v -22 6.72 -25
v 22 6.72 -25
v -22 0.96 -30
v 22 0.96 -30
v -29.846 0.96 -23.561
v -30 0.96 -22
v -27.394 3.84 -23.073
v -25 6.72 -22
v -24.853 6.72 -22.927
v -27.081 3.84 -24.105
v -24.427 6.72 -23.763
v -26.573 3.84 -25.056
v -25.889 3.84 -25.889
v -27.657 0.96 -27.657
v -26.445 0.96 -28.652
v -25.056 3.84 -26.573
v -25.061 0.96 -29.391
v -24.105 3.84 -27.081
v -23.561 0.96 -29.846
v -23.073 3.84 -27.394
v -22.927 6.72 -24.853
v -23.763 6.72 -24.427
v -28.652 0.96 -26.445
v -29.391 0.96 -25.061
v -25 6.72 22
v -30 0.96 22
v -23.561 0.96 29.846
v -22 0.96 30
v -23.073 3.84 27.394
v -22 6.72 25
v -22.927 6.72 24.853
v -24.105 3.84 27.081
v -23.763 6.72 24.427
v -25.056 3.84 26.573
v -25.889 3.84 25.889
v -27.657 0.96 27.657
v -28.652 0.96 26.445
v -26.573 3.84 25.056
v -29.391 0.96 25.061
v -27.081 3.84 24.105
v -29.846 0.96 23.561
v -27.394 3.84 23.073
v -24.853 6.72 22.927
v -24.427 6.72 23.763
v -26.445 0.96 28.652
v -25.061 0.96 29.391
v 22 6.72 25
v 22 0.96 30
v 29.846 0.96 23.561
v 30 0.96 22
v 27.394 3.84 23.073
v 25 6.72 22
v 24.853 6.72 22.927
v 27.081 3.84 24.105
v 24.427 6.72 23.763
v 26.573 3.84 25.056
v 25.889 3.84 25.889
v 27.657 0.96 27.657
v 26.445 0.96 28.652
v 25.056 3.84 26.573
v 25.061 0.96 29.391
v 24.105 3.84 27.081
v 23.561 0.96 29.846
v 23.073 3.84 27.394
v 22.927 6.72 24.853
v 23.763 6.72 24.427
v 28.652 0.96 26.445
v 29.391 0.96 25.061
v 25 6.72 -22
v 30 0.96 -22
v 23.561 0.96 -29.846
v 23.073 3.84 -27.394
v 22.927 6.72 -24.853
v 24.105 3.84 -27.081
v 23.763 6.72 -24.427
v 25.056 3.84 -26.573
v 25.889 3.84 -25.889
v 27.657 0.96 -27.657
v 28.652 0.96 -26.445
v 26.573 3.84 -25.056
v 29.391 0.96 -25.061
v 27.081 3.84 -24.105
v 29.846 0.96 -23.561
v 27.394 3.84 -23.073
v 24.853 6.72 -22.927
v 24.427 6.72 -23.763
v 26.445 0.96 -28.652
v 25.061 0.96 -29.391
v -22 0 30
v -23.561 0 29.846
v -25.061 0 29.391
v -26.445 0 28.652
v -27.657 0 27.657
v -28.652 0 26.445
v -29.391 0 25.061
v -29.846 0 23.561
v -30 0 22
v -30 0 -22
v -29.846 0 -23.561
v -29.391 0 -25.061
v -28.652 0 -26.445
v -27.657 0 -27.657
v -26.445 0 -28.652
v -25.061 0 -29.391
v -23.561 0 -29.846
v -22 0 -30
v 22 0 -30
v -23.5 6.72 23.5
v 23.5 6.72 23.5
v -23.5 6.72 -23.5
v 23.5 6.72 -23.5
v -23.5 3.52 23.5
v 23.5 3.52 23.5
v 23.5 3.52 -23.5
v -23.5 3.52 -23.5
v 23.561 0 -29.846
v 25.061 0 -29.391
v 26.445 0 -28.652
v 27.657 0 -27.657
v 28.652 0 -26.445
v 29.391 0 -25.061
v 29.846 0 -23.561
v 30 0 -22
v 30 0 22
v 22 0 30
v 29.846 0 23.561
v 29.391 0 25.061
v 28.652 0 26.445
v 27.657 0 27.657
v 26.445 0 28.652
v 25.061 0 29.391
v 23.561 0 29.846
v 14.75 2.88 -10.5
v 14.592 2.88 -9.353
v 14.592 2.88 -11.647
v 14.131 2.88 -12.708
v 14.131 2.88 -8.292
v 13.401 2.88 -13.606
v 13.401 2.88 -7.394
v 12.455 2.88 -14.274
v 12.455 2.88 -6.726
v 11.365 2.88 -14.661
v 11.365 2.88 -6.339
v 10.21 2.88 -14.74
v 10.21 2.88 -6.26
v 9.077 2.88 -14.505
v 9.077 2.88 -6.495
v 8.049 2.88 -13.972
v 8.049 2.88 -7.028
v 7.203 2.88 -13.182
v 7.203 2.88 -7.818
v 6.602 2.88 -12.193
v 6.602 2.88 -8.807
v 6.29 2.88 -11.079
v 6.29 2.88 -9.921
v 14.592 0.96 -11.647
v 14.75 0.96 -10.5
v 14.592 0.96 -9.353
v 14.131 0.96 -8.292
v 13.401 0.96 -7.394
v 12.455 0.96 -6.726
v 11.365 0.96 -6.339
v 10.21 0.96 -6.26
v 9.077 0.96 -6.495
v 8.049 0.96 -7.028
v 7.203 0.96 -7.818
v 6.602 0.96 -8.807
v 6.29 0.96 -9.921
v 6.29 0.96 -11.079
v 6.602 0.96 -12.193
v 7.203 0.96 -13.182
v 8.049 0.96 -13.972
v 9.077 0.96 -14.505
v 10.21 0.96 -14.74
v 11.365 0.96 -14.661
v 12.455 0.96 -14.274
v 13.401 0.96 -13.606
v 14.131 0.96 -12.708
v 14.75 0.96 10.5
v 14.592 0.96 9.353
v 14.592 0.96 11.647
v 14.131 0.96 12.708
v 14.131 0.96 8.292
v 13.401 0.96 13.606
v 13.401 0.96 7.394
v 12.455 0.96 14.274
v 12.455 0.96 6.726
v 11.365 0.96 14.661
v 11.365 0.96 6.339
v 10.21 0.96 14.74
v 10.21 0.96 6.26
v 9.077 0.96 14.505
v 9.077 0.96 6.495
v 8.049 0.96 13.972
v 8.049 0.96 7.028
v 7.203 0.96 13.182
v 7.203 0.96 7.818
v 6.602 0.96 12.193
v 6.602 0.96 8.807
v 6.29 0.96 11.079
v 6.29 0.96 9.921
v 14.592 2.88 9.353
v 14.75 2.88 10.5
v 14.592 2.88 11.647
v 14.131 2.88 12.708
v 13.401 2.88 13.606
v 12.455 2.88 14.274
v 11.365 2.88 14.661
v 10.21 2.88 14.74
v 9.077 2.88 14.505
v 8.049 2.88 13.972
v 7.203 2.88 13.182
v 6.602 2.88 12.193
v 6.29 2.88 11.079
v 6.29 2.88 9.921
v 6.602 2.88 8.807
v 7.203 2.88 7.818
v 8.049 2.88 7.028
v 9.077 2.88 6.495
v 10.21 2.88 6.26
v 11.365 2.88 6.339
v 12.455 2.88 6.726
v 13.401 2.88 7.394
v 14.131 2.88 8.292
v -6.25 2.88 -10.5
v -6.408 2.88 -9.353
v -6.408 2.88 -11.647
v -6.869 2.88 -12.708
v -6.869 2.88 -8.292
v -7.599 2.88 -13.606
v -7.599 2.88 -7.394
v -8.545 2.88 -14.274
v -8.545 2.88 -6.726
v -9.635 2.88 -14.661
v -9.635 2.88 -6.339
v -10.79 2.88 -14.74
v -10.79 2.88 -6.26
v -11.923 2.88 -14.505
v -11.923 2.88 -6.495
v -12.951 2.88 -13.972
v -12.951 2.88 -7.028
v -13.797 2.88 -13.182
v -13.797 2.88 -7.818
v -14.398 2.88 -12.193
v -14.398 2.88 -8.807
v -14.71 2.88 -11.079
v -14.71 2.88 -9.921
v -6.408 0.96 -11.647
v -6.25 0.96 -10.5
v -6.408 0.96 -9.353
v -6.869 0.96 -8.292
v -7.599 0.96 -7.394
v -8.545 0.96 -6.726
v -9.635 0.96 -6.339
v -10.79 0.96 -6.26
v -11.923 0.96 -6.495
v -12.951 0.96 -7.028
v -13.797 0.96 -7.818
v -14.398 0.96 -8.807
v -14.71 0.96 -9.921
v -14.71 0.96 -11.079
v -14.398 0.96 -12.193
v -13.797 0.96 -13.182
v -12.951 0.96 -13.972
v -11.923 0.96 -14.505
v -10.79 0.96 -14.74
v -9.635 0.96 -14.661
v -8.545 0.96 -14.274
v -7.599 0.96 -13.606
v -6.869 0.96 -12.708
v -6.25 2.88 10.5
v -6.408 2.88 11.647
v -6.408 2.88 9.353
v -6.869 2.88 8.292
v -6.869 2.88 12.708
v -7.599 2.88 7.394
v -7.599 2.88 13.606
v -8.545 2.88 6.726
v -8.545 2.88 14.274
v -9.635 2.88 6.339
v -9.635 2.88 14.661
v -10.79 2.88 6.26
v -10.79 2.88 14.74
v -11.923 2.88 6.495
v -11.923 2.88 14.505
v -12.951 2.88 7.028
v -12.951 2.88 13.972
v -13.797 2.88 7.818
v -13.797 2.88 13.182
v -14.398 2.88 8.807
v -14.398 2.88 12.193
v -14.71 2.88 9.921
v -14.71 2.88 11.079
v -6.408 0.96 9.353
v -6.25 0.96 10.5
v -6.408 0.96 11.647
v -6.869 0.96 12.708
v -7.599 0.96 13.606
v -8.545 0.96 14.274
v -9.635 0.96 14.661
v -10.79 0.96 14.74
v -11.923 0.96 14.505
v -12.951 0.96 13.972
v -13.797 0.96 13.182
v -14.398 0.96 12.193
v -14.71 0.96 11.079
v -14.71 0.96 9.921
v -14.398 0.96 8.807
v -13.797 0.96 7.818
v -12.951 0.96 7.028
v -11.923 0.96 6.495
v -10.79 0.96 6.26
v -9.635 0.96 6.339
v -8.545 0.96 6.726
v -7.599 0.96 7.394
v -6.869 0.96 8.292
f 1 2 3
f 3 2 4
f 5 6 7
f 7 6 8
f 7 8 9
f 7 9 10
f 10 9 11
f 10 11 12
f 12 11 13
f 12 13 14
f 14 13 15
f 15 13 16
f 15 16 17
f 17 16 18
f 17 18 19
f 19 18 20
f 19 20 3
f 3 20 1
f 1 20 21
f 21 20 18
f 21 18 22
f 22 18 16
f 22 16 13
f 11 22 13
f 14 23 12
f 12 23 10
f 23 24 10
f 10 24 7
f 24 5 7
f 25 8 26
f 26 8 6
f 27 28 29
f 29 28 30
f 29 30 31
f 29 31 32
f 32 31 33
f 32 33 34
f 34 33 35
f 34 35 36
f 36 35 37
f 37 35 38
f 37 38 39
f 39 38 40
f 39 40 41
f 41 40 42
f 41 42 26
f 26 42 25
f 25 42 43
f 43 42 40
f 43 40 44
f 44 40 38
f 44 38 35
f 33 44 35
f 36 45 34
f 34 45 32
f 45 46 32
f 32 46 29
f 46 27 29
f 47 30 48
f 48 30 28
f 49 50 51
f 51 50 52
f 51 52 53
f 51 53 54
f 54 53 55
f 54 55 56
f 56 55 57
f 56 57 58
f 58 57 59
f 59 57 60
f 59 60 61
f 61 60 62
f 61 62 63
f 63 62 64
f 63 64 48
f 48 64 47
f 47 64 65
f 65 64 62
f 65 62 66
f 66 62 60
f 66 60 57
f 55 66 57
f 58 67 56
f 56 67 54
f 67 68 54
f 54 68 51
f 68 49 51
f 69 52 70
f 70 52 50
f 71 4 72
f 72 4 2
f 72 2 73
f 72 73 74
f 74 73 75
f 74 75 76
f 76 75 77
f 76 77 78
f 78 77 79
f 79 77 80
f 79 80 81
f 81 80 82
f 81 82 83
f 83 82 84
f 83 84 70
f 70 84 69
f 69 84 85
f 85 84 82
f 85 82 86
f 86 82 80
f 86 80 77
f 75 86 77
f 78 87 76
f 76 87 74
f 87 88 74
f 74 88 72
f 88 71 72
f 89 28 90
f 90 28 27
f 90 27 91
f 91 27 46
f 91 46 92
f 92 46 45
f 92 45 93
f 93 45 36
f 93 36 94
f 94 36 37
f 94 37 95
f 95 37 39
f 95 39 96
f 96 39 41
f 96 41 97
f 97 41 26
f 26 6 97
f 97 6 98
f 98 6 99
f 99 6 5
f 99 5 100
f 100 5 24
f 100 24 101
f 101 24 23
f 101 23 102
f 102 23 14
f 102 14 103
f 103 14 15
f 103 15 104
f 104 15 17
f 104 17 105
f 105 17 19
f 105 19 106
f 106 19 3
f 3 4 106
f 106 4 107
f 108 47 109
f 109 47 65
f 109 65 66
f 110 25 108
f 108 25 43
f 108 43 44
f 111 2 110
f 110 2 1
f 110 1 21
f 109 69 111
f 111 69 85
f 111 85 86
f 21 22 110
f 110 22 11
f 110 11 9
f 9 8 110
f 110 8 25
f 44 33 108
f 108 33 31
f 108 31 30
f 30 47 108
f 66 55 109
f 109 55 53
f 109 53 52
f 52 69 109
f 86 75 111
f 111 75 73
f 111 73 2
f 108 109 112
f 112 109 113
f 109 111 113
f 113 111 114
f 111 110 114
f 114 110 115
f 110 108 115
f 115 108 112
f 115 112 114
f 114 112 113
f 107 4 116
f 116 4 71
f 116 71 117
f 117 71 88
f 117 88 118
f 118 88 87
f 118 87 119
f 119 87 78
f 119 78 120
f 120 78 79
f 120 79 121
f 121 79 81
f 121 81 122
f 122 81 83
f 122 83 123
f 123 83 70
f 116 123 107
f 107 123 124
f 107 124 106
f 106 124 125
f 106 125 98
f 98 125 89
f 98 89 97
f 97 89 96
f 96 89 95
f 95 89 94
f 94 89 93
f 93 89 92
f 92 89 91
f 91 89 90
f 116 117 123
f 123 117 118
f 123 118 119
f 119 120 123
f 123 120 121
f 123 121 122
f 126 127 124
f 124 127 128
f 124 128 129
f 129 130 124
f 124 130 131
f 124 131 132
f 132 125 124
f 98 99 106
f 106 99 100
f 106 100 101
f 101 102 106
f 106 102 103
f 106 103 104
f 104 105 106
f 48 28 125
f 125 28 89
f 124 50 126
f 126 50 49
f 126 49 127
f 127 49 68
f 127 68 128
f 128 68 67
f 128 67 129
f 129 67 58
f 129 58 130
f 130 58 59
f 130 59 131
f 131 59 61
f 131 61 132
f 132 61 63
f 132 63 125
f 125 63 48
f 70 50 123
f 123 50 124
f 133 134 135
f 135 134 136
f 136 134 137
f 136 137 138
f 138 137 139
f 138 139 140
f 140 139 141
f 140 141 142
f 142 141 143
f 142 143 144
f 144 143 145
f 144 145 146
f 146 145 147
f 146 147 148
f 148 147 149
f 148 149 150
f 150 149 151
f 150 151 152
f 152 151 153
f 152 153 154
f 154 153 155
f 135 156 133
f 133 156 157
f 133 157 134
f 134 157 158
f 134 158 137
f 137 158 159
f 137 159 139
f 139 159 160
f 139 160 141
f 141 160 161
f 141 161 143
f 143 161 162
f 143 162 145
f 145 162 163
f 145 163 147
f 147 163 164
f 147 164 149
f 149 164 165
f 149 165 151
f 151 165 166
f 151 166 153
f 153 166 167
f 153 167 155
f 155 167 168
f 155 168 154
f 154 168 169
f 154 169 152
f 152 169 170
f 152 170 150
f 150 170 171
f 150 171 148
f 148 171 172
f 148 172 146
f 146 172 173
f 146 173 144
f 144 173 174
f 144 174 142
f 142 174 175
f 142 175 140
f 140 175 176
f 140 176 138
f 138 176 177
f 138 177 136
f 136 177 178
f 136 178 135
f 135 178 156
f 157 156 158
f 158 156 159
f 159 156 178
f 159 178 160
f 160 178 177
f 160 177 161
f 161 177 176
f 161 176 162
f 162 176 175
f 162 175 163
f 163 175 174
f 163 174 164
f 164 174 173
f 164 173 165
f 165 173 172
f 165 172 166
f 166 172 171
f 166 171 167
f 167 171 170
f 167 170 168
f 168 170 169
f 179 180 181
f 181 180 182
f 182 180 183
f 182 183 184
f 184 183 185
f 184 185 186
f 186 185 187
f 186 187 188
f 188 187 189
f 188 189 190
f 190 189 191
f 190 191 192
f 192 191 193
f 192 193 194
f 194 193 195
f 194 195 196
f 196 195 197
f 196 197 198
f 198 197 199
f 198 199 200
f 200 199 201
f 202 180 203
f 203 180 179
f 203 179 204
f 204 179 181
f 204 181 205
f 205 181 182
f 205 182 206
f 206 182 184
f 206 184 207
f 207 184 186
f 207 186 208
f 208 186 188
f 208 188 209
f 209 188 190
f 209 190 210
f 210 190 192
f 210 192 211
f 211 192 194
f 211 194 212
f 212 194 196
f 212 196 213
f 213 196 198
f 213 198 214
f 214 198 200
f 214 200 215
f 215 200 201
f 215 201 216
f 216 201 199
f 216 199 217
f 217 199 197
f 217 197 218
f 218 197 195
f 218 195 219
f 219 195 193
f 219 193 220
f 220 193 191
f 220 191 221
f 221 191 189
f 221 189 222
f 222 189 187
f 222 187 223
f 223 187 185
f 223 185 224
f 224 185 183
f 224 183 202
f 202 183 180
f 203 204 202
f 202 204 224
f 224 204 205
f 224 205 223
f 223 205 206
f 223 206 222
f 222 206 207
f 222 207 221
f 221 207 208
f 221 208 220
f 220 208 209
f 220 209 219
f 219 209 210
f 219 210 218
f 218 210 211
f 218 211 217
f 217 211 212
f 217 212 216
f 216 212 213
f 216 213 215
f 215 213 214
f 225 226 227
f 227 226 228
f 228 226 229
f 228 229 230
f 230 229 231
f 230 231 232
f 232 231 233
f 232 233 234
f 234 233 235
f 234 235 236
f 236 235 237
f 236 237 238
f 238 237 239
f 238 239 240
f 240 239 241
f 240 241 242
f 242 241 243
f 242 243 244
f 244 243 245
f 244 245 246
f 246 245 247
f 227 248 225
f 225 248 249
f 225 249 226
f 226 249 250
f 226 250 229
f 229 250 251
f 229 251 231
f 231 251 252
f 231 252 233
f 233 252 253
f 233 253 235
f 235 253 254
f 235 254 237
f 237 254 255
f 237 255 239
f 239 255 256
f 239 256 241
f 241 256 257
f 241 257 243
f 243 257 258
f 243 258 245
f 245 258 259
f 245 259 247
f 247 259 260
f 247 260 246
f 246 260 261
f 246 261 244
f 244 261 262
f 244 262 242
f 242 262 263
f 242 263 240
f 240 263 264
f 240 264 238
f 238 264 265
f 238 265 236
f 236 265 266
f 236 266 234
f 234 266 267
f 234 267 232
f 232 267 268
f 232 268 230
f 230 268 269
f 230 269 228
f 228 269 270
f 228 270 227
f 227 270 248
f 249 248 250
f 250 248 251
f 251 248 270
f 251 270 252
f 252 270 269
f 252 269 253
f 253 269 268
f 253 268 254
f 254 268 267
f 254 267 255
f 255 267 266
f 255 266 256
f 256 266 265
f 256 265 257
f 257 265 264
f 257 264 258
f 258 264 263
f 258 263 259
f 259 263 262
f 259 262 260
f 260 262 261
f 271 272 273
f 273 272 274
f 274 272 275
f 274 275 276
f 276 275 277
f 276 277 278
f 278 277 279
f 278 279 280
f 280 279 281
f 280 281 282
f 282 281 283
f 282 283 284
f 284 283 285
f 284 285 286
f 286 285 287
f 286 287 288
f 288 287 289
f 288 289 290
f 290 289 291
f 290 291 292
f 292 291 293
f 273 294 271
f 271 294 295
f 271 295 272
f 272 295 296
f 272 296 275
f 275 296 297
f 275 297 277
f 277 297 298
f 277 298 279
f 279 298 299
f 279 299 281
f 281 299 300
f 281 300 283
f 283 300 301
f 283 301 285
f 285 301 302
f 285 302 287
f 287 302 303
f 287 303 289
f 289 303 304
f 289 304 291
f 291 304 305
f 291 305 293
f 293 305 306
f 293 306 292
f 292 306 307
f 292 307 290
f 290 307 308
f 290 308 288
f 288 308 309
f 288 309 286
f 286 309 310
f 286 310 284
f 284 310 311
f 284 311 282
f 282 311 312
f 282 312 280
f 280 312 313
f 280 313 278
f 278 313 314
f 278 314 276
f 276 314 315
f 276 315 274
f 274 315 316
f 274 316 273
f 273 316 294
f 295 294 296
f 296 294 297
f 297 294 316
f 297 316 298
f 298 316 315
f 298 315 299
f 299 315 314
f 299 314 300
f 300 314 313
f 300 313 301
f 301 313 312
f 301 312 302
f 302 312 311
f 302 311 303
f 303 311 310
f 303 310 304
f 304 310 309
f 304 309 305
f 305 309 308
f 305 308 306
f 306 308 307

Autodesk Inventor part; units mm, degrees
ref_plane "YZ Plane" through (0, 0, 0) normal (1, 0, 0) x (0, 1, 0)
ref_plane "XZ Plane" through (0, 0, 0) normal (0, 1, 0) x (-1, 0, 0)
ref_plane "XY Plane" through (0, 0, 0) normal (0, 0, 1) x (1, 0, 0)
sketch "Sketch1" plane through (0, 0, 0) normal (0, 1, 0) x (-1, 0, 0)
  line L0 (30, 30) -> (-30, 30)
  line L1 (-30, 30) -> (-30, -30)
  line L2 (-30, -30) -> (30, -30)
  line L3 (30, -30) -> (30, 30)
  point P0 (0, 0)
  point P1 (30, 0)
  point P2 (0, 30)
  dimension "d0" = 60
  dimension "d1" = 60
extrude "Extrusion1" add sketch "Sketch1" along normal blind 0.96
sketch "Sketch2" plane through (0, 0.96, 0) normal (0, 1, 0) x (1, 0, 0)
  line L0 (30, -30) -> (30, 30) projected
  line L1 (30, 30) -> (-30, 30) projected
  line L2 (-30, 30) -> (-30, -30) projected
  line L3 (-30, -30) -> (30, -30) projected
  line L4 (-30, 0) -> (30, 0)
  line L5 (0, -30) -> (0, 30)
  circle A0 centre (-10.5, -10.5) radius 4.25
  circle A1 centre (-10.5, 10.5) radius 4.25
  circle A2 centre (10.5, 10.5) radius 4.25
  circle A3 centre (10.5, -10.5) radius 4.25
  point P0 (0, 0)
  dimension "d13" = 8.5
  dimension "d14" = 21
  dimension "d15" = 21
extrude "Extrusion2" add sketch "Sketch2" along normal blind 1.92
sketch "Sketch3" plane through (0, 2.88, 0) normal (0, 1, 0) x (1, 0, 0)
  line L0 (-30, 30) -> (-30, -30) projected
  line L1 (-30, -30) -> (30, -30) projected
  line L2 (30, -30) -> (30, 30) projected
  line L3 (30, 30) -> (-30, 30) projected
  point P0 (0, 0)
extrude "Extrusion3" add sketch "Sketch3" along normal blind 0.64
fillet "Fillet1" radius 8 4 edges at (30, 1.76, 30) (-30, 1.76, 30) (-30, 1.76, -30) (30, 1.76, -30)
ref_plane "Arbeitsebene2" through (27.6569, 3.52, -27.6569) normal (-0.7071, 0, -0.7071) x (0, -1, 0)
sketch "Skizze7" plane through (0, 3.52, 0) normal (0, 1, 0) x (1, 0, 0)
  line L0 (-22, -30) -> (22, -30) projected
  arc A0 (22, -30) -> (30, -22) centre (22, -22) ccw projected
  line L1 (30, -22) -> (30, 22) projected
  arc A1 (30, 22) -> (22, 30) centre (22, 22) ccw projected
  line L2 (22, 30) -> (-22, 30) projected
  arc A2 (-22, 30) -> (-30, 22) centre (-22, 22) ccw projected
  line L3 (-30, 22) -> (-30, -22) projected
  arc A3 (-30, -22) -> (-22, -30) centre (-22, -22) ccw projected
  line L4 (22, -30) -> (-22, -30)
  line L5 (-30, -22) -> (-30, 22)
  line L6 (-22, 30) -> (22, 30)
  line L7 (30, 22) -> (30, -22)
  arc A4 (22, -30) -> (30, -22) centre (22, -22) ccw
  arc A5 (-30, -22) -> (-22, -30) centre (-22, -22) ccw
  arc A6 (-22, 30) -> (-30, 22) centre (-22, 22) ccw
  arc A7 (30, 22) -> (22, 30) centre (22, 22) ccw
  point P0 (0, 0)
extrude "Extrusion4" add sketch "Skizze7" along normal blind 3.2
sketch "Skizze8" plane through (0, 6.72, 0) normal (0, 1, 0) x (1, 0, 0)
  line L0 (23.5, 23.5) -> (-23.5, 23.5)
  line L1 (-23.5, 23.5) -> (-23.5, -23.5)
  line L2 (-23.5, -23.5) -> (23.5, -23.5)
  line L3 (23.5, -23.5) -> (23.5, 23.5)
  line L4 (23.5, 23.5) -> (-23.5, -23.5) construction
  line L5 (-23.5, 23.5) -> (23.5, -23.5) construction
  point P0 (0, 0)
  dimension "d25" = 47
  dimension "d26" = 47
extrude "Extrusion5" cut sketch "Skizze8" against normal blind 3.2
chamfer "Fasen2" distance 5 distance2 5.76 8 edges at (0, 6.72, -30) (-27.6569, 6.72, -27.6569) (-30, 6.72, 0) (-27.6569, 6.72, 27.6569) (0, 6.72, 30) (27.6569, 6.72, 27.6569) (30, 6.72, 0) (27.6569, 6.72, -27.6569) measured on face at (7.3333, 6.72, -25.6667)
properties part number "IMU_Base_T-Shirt"
